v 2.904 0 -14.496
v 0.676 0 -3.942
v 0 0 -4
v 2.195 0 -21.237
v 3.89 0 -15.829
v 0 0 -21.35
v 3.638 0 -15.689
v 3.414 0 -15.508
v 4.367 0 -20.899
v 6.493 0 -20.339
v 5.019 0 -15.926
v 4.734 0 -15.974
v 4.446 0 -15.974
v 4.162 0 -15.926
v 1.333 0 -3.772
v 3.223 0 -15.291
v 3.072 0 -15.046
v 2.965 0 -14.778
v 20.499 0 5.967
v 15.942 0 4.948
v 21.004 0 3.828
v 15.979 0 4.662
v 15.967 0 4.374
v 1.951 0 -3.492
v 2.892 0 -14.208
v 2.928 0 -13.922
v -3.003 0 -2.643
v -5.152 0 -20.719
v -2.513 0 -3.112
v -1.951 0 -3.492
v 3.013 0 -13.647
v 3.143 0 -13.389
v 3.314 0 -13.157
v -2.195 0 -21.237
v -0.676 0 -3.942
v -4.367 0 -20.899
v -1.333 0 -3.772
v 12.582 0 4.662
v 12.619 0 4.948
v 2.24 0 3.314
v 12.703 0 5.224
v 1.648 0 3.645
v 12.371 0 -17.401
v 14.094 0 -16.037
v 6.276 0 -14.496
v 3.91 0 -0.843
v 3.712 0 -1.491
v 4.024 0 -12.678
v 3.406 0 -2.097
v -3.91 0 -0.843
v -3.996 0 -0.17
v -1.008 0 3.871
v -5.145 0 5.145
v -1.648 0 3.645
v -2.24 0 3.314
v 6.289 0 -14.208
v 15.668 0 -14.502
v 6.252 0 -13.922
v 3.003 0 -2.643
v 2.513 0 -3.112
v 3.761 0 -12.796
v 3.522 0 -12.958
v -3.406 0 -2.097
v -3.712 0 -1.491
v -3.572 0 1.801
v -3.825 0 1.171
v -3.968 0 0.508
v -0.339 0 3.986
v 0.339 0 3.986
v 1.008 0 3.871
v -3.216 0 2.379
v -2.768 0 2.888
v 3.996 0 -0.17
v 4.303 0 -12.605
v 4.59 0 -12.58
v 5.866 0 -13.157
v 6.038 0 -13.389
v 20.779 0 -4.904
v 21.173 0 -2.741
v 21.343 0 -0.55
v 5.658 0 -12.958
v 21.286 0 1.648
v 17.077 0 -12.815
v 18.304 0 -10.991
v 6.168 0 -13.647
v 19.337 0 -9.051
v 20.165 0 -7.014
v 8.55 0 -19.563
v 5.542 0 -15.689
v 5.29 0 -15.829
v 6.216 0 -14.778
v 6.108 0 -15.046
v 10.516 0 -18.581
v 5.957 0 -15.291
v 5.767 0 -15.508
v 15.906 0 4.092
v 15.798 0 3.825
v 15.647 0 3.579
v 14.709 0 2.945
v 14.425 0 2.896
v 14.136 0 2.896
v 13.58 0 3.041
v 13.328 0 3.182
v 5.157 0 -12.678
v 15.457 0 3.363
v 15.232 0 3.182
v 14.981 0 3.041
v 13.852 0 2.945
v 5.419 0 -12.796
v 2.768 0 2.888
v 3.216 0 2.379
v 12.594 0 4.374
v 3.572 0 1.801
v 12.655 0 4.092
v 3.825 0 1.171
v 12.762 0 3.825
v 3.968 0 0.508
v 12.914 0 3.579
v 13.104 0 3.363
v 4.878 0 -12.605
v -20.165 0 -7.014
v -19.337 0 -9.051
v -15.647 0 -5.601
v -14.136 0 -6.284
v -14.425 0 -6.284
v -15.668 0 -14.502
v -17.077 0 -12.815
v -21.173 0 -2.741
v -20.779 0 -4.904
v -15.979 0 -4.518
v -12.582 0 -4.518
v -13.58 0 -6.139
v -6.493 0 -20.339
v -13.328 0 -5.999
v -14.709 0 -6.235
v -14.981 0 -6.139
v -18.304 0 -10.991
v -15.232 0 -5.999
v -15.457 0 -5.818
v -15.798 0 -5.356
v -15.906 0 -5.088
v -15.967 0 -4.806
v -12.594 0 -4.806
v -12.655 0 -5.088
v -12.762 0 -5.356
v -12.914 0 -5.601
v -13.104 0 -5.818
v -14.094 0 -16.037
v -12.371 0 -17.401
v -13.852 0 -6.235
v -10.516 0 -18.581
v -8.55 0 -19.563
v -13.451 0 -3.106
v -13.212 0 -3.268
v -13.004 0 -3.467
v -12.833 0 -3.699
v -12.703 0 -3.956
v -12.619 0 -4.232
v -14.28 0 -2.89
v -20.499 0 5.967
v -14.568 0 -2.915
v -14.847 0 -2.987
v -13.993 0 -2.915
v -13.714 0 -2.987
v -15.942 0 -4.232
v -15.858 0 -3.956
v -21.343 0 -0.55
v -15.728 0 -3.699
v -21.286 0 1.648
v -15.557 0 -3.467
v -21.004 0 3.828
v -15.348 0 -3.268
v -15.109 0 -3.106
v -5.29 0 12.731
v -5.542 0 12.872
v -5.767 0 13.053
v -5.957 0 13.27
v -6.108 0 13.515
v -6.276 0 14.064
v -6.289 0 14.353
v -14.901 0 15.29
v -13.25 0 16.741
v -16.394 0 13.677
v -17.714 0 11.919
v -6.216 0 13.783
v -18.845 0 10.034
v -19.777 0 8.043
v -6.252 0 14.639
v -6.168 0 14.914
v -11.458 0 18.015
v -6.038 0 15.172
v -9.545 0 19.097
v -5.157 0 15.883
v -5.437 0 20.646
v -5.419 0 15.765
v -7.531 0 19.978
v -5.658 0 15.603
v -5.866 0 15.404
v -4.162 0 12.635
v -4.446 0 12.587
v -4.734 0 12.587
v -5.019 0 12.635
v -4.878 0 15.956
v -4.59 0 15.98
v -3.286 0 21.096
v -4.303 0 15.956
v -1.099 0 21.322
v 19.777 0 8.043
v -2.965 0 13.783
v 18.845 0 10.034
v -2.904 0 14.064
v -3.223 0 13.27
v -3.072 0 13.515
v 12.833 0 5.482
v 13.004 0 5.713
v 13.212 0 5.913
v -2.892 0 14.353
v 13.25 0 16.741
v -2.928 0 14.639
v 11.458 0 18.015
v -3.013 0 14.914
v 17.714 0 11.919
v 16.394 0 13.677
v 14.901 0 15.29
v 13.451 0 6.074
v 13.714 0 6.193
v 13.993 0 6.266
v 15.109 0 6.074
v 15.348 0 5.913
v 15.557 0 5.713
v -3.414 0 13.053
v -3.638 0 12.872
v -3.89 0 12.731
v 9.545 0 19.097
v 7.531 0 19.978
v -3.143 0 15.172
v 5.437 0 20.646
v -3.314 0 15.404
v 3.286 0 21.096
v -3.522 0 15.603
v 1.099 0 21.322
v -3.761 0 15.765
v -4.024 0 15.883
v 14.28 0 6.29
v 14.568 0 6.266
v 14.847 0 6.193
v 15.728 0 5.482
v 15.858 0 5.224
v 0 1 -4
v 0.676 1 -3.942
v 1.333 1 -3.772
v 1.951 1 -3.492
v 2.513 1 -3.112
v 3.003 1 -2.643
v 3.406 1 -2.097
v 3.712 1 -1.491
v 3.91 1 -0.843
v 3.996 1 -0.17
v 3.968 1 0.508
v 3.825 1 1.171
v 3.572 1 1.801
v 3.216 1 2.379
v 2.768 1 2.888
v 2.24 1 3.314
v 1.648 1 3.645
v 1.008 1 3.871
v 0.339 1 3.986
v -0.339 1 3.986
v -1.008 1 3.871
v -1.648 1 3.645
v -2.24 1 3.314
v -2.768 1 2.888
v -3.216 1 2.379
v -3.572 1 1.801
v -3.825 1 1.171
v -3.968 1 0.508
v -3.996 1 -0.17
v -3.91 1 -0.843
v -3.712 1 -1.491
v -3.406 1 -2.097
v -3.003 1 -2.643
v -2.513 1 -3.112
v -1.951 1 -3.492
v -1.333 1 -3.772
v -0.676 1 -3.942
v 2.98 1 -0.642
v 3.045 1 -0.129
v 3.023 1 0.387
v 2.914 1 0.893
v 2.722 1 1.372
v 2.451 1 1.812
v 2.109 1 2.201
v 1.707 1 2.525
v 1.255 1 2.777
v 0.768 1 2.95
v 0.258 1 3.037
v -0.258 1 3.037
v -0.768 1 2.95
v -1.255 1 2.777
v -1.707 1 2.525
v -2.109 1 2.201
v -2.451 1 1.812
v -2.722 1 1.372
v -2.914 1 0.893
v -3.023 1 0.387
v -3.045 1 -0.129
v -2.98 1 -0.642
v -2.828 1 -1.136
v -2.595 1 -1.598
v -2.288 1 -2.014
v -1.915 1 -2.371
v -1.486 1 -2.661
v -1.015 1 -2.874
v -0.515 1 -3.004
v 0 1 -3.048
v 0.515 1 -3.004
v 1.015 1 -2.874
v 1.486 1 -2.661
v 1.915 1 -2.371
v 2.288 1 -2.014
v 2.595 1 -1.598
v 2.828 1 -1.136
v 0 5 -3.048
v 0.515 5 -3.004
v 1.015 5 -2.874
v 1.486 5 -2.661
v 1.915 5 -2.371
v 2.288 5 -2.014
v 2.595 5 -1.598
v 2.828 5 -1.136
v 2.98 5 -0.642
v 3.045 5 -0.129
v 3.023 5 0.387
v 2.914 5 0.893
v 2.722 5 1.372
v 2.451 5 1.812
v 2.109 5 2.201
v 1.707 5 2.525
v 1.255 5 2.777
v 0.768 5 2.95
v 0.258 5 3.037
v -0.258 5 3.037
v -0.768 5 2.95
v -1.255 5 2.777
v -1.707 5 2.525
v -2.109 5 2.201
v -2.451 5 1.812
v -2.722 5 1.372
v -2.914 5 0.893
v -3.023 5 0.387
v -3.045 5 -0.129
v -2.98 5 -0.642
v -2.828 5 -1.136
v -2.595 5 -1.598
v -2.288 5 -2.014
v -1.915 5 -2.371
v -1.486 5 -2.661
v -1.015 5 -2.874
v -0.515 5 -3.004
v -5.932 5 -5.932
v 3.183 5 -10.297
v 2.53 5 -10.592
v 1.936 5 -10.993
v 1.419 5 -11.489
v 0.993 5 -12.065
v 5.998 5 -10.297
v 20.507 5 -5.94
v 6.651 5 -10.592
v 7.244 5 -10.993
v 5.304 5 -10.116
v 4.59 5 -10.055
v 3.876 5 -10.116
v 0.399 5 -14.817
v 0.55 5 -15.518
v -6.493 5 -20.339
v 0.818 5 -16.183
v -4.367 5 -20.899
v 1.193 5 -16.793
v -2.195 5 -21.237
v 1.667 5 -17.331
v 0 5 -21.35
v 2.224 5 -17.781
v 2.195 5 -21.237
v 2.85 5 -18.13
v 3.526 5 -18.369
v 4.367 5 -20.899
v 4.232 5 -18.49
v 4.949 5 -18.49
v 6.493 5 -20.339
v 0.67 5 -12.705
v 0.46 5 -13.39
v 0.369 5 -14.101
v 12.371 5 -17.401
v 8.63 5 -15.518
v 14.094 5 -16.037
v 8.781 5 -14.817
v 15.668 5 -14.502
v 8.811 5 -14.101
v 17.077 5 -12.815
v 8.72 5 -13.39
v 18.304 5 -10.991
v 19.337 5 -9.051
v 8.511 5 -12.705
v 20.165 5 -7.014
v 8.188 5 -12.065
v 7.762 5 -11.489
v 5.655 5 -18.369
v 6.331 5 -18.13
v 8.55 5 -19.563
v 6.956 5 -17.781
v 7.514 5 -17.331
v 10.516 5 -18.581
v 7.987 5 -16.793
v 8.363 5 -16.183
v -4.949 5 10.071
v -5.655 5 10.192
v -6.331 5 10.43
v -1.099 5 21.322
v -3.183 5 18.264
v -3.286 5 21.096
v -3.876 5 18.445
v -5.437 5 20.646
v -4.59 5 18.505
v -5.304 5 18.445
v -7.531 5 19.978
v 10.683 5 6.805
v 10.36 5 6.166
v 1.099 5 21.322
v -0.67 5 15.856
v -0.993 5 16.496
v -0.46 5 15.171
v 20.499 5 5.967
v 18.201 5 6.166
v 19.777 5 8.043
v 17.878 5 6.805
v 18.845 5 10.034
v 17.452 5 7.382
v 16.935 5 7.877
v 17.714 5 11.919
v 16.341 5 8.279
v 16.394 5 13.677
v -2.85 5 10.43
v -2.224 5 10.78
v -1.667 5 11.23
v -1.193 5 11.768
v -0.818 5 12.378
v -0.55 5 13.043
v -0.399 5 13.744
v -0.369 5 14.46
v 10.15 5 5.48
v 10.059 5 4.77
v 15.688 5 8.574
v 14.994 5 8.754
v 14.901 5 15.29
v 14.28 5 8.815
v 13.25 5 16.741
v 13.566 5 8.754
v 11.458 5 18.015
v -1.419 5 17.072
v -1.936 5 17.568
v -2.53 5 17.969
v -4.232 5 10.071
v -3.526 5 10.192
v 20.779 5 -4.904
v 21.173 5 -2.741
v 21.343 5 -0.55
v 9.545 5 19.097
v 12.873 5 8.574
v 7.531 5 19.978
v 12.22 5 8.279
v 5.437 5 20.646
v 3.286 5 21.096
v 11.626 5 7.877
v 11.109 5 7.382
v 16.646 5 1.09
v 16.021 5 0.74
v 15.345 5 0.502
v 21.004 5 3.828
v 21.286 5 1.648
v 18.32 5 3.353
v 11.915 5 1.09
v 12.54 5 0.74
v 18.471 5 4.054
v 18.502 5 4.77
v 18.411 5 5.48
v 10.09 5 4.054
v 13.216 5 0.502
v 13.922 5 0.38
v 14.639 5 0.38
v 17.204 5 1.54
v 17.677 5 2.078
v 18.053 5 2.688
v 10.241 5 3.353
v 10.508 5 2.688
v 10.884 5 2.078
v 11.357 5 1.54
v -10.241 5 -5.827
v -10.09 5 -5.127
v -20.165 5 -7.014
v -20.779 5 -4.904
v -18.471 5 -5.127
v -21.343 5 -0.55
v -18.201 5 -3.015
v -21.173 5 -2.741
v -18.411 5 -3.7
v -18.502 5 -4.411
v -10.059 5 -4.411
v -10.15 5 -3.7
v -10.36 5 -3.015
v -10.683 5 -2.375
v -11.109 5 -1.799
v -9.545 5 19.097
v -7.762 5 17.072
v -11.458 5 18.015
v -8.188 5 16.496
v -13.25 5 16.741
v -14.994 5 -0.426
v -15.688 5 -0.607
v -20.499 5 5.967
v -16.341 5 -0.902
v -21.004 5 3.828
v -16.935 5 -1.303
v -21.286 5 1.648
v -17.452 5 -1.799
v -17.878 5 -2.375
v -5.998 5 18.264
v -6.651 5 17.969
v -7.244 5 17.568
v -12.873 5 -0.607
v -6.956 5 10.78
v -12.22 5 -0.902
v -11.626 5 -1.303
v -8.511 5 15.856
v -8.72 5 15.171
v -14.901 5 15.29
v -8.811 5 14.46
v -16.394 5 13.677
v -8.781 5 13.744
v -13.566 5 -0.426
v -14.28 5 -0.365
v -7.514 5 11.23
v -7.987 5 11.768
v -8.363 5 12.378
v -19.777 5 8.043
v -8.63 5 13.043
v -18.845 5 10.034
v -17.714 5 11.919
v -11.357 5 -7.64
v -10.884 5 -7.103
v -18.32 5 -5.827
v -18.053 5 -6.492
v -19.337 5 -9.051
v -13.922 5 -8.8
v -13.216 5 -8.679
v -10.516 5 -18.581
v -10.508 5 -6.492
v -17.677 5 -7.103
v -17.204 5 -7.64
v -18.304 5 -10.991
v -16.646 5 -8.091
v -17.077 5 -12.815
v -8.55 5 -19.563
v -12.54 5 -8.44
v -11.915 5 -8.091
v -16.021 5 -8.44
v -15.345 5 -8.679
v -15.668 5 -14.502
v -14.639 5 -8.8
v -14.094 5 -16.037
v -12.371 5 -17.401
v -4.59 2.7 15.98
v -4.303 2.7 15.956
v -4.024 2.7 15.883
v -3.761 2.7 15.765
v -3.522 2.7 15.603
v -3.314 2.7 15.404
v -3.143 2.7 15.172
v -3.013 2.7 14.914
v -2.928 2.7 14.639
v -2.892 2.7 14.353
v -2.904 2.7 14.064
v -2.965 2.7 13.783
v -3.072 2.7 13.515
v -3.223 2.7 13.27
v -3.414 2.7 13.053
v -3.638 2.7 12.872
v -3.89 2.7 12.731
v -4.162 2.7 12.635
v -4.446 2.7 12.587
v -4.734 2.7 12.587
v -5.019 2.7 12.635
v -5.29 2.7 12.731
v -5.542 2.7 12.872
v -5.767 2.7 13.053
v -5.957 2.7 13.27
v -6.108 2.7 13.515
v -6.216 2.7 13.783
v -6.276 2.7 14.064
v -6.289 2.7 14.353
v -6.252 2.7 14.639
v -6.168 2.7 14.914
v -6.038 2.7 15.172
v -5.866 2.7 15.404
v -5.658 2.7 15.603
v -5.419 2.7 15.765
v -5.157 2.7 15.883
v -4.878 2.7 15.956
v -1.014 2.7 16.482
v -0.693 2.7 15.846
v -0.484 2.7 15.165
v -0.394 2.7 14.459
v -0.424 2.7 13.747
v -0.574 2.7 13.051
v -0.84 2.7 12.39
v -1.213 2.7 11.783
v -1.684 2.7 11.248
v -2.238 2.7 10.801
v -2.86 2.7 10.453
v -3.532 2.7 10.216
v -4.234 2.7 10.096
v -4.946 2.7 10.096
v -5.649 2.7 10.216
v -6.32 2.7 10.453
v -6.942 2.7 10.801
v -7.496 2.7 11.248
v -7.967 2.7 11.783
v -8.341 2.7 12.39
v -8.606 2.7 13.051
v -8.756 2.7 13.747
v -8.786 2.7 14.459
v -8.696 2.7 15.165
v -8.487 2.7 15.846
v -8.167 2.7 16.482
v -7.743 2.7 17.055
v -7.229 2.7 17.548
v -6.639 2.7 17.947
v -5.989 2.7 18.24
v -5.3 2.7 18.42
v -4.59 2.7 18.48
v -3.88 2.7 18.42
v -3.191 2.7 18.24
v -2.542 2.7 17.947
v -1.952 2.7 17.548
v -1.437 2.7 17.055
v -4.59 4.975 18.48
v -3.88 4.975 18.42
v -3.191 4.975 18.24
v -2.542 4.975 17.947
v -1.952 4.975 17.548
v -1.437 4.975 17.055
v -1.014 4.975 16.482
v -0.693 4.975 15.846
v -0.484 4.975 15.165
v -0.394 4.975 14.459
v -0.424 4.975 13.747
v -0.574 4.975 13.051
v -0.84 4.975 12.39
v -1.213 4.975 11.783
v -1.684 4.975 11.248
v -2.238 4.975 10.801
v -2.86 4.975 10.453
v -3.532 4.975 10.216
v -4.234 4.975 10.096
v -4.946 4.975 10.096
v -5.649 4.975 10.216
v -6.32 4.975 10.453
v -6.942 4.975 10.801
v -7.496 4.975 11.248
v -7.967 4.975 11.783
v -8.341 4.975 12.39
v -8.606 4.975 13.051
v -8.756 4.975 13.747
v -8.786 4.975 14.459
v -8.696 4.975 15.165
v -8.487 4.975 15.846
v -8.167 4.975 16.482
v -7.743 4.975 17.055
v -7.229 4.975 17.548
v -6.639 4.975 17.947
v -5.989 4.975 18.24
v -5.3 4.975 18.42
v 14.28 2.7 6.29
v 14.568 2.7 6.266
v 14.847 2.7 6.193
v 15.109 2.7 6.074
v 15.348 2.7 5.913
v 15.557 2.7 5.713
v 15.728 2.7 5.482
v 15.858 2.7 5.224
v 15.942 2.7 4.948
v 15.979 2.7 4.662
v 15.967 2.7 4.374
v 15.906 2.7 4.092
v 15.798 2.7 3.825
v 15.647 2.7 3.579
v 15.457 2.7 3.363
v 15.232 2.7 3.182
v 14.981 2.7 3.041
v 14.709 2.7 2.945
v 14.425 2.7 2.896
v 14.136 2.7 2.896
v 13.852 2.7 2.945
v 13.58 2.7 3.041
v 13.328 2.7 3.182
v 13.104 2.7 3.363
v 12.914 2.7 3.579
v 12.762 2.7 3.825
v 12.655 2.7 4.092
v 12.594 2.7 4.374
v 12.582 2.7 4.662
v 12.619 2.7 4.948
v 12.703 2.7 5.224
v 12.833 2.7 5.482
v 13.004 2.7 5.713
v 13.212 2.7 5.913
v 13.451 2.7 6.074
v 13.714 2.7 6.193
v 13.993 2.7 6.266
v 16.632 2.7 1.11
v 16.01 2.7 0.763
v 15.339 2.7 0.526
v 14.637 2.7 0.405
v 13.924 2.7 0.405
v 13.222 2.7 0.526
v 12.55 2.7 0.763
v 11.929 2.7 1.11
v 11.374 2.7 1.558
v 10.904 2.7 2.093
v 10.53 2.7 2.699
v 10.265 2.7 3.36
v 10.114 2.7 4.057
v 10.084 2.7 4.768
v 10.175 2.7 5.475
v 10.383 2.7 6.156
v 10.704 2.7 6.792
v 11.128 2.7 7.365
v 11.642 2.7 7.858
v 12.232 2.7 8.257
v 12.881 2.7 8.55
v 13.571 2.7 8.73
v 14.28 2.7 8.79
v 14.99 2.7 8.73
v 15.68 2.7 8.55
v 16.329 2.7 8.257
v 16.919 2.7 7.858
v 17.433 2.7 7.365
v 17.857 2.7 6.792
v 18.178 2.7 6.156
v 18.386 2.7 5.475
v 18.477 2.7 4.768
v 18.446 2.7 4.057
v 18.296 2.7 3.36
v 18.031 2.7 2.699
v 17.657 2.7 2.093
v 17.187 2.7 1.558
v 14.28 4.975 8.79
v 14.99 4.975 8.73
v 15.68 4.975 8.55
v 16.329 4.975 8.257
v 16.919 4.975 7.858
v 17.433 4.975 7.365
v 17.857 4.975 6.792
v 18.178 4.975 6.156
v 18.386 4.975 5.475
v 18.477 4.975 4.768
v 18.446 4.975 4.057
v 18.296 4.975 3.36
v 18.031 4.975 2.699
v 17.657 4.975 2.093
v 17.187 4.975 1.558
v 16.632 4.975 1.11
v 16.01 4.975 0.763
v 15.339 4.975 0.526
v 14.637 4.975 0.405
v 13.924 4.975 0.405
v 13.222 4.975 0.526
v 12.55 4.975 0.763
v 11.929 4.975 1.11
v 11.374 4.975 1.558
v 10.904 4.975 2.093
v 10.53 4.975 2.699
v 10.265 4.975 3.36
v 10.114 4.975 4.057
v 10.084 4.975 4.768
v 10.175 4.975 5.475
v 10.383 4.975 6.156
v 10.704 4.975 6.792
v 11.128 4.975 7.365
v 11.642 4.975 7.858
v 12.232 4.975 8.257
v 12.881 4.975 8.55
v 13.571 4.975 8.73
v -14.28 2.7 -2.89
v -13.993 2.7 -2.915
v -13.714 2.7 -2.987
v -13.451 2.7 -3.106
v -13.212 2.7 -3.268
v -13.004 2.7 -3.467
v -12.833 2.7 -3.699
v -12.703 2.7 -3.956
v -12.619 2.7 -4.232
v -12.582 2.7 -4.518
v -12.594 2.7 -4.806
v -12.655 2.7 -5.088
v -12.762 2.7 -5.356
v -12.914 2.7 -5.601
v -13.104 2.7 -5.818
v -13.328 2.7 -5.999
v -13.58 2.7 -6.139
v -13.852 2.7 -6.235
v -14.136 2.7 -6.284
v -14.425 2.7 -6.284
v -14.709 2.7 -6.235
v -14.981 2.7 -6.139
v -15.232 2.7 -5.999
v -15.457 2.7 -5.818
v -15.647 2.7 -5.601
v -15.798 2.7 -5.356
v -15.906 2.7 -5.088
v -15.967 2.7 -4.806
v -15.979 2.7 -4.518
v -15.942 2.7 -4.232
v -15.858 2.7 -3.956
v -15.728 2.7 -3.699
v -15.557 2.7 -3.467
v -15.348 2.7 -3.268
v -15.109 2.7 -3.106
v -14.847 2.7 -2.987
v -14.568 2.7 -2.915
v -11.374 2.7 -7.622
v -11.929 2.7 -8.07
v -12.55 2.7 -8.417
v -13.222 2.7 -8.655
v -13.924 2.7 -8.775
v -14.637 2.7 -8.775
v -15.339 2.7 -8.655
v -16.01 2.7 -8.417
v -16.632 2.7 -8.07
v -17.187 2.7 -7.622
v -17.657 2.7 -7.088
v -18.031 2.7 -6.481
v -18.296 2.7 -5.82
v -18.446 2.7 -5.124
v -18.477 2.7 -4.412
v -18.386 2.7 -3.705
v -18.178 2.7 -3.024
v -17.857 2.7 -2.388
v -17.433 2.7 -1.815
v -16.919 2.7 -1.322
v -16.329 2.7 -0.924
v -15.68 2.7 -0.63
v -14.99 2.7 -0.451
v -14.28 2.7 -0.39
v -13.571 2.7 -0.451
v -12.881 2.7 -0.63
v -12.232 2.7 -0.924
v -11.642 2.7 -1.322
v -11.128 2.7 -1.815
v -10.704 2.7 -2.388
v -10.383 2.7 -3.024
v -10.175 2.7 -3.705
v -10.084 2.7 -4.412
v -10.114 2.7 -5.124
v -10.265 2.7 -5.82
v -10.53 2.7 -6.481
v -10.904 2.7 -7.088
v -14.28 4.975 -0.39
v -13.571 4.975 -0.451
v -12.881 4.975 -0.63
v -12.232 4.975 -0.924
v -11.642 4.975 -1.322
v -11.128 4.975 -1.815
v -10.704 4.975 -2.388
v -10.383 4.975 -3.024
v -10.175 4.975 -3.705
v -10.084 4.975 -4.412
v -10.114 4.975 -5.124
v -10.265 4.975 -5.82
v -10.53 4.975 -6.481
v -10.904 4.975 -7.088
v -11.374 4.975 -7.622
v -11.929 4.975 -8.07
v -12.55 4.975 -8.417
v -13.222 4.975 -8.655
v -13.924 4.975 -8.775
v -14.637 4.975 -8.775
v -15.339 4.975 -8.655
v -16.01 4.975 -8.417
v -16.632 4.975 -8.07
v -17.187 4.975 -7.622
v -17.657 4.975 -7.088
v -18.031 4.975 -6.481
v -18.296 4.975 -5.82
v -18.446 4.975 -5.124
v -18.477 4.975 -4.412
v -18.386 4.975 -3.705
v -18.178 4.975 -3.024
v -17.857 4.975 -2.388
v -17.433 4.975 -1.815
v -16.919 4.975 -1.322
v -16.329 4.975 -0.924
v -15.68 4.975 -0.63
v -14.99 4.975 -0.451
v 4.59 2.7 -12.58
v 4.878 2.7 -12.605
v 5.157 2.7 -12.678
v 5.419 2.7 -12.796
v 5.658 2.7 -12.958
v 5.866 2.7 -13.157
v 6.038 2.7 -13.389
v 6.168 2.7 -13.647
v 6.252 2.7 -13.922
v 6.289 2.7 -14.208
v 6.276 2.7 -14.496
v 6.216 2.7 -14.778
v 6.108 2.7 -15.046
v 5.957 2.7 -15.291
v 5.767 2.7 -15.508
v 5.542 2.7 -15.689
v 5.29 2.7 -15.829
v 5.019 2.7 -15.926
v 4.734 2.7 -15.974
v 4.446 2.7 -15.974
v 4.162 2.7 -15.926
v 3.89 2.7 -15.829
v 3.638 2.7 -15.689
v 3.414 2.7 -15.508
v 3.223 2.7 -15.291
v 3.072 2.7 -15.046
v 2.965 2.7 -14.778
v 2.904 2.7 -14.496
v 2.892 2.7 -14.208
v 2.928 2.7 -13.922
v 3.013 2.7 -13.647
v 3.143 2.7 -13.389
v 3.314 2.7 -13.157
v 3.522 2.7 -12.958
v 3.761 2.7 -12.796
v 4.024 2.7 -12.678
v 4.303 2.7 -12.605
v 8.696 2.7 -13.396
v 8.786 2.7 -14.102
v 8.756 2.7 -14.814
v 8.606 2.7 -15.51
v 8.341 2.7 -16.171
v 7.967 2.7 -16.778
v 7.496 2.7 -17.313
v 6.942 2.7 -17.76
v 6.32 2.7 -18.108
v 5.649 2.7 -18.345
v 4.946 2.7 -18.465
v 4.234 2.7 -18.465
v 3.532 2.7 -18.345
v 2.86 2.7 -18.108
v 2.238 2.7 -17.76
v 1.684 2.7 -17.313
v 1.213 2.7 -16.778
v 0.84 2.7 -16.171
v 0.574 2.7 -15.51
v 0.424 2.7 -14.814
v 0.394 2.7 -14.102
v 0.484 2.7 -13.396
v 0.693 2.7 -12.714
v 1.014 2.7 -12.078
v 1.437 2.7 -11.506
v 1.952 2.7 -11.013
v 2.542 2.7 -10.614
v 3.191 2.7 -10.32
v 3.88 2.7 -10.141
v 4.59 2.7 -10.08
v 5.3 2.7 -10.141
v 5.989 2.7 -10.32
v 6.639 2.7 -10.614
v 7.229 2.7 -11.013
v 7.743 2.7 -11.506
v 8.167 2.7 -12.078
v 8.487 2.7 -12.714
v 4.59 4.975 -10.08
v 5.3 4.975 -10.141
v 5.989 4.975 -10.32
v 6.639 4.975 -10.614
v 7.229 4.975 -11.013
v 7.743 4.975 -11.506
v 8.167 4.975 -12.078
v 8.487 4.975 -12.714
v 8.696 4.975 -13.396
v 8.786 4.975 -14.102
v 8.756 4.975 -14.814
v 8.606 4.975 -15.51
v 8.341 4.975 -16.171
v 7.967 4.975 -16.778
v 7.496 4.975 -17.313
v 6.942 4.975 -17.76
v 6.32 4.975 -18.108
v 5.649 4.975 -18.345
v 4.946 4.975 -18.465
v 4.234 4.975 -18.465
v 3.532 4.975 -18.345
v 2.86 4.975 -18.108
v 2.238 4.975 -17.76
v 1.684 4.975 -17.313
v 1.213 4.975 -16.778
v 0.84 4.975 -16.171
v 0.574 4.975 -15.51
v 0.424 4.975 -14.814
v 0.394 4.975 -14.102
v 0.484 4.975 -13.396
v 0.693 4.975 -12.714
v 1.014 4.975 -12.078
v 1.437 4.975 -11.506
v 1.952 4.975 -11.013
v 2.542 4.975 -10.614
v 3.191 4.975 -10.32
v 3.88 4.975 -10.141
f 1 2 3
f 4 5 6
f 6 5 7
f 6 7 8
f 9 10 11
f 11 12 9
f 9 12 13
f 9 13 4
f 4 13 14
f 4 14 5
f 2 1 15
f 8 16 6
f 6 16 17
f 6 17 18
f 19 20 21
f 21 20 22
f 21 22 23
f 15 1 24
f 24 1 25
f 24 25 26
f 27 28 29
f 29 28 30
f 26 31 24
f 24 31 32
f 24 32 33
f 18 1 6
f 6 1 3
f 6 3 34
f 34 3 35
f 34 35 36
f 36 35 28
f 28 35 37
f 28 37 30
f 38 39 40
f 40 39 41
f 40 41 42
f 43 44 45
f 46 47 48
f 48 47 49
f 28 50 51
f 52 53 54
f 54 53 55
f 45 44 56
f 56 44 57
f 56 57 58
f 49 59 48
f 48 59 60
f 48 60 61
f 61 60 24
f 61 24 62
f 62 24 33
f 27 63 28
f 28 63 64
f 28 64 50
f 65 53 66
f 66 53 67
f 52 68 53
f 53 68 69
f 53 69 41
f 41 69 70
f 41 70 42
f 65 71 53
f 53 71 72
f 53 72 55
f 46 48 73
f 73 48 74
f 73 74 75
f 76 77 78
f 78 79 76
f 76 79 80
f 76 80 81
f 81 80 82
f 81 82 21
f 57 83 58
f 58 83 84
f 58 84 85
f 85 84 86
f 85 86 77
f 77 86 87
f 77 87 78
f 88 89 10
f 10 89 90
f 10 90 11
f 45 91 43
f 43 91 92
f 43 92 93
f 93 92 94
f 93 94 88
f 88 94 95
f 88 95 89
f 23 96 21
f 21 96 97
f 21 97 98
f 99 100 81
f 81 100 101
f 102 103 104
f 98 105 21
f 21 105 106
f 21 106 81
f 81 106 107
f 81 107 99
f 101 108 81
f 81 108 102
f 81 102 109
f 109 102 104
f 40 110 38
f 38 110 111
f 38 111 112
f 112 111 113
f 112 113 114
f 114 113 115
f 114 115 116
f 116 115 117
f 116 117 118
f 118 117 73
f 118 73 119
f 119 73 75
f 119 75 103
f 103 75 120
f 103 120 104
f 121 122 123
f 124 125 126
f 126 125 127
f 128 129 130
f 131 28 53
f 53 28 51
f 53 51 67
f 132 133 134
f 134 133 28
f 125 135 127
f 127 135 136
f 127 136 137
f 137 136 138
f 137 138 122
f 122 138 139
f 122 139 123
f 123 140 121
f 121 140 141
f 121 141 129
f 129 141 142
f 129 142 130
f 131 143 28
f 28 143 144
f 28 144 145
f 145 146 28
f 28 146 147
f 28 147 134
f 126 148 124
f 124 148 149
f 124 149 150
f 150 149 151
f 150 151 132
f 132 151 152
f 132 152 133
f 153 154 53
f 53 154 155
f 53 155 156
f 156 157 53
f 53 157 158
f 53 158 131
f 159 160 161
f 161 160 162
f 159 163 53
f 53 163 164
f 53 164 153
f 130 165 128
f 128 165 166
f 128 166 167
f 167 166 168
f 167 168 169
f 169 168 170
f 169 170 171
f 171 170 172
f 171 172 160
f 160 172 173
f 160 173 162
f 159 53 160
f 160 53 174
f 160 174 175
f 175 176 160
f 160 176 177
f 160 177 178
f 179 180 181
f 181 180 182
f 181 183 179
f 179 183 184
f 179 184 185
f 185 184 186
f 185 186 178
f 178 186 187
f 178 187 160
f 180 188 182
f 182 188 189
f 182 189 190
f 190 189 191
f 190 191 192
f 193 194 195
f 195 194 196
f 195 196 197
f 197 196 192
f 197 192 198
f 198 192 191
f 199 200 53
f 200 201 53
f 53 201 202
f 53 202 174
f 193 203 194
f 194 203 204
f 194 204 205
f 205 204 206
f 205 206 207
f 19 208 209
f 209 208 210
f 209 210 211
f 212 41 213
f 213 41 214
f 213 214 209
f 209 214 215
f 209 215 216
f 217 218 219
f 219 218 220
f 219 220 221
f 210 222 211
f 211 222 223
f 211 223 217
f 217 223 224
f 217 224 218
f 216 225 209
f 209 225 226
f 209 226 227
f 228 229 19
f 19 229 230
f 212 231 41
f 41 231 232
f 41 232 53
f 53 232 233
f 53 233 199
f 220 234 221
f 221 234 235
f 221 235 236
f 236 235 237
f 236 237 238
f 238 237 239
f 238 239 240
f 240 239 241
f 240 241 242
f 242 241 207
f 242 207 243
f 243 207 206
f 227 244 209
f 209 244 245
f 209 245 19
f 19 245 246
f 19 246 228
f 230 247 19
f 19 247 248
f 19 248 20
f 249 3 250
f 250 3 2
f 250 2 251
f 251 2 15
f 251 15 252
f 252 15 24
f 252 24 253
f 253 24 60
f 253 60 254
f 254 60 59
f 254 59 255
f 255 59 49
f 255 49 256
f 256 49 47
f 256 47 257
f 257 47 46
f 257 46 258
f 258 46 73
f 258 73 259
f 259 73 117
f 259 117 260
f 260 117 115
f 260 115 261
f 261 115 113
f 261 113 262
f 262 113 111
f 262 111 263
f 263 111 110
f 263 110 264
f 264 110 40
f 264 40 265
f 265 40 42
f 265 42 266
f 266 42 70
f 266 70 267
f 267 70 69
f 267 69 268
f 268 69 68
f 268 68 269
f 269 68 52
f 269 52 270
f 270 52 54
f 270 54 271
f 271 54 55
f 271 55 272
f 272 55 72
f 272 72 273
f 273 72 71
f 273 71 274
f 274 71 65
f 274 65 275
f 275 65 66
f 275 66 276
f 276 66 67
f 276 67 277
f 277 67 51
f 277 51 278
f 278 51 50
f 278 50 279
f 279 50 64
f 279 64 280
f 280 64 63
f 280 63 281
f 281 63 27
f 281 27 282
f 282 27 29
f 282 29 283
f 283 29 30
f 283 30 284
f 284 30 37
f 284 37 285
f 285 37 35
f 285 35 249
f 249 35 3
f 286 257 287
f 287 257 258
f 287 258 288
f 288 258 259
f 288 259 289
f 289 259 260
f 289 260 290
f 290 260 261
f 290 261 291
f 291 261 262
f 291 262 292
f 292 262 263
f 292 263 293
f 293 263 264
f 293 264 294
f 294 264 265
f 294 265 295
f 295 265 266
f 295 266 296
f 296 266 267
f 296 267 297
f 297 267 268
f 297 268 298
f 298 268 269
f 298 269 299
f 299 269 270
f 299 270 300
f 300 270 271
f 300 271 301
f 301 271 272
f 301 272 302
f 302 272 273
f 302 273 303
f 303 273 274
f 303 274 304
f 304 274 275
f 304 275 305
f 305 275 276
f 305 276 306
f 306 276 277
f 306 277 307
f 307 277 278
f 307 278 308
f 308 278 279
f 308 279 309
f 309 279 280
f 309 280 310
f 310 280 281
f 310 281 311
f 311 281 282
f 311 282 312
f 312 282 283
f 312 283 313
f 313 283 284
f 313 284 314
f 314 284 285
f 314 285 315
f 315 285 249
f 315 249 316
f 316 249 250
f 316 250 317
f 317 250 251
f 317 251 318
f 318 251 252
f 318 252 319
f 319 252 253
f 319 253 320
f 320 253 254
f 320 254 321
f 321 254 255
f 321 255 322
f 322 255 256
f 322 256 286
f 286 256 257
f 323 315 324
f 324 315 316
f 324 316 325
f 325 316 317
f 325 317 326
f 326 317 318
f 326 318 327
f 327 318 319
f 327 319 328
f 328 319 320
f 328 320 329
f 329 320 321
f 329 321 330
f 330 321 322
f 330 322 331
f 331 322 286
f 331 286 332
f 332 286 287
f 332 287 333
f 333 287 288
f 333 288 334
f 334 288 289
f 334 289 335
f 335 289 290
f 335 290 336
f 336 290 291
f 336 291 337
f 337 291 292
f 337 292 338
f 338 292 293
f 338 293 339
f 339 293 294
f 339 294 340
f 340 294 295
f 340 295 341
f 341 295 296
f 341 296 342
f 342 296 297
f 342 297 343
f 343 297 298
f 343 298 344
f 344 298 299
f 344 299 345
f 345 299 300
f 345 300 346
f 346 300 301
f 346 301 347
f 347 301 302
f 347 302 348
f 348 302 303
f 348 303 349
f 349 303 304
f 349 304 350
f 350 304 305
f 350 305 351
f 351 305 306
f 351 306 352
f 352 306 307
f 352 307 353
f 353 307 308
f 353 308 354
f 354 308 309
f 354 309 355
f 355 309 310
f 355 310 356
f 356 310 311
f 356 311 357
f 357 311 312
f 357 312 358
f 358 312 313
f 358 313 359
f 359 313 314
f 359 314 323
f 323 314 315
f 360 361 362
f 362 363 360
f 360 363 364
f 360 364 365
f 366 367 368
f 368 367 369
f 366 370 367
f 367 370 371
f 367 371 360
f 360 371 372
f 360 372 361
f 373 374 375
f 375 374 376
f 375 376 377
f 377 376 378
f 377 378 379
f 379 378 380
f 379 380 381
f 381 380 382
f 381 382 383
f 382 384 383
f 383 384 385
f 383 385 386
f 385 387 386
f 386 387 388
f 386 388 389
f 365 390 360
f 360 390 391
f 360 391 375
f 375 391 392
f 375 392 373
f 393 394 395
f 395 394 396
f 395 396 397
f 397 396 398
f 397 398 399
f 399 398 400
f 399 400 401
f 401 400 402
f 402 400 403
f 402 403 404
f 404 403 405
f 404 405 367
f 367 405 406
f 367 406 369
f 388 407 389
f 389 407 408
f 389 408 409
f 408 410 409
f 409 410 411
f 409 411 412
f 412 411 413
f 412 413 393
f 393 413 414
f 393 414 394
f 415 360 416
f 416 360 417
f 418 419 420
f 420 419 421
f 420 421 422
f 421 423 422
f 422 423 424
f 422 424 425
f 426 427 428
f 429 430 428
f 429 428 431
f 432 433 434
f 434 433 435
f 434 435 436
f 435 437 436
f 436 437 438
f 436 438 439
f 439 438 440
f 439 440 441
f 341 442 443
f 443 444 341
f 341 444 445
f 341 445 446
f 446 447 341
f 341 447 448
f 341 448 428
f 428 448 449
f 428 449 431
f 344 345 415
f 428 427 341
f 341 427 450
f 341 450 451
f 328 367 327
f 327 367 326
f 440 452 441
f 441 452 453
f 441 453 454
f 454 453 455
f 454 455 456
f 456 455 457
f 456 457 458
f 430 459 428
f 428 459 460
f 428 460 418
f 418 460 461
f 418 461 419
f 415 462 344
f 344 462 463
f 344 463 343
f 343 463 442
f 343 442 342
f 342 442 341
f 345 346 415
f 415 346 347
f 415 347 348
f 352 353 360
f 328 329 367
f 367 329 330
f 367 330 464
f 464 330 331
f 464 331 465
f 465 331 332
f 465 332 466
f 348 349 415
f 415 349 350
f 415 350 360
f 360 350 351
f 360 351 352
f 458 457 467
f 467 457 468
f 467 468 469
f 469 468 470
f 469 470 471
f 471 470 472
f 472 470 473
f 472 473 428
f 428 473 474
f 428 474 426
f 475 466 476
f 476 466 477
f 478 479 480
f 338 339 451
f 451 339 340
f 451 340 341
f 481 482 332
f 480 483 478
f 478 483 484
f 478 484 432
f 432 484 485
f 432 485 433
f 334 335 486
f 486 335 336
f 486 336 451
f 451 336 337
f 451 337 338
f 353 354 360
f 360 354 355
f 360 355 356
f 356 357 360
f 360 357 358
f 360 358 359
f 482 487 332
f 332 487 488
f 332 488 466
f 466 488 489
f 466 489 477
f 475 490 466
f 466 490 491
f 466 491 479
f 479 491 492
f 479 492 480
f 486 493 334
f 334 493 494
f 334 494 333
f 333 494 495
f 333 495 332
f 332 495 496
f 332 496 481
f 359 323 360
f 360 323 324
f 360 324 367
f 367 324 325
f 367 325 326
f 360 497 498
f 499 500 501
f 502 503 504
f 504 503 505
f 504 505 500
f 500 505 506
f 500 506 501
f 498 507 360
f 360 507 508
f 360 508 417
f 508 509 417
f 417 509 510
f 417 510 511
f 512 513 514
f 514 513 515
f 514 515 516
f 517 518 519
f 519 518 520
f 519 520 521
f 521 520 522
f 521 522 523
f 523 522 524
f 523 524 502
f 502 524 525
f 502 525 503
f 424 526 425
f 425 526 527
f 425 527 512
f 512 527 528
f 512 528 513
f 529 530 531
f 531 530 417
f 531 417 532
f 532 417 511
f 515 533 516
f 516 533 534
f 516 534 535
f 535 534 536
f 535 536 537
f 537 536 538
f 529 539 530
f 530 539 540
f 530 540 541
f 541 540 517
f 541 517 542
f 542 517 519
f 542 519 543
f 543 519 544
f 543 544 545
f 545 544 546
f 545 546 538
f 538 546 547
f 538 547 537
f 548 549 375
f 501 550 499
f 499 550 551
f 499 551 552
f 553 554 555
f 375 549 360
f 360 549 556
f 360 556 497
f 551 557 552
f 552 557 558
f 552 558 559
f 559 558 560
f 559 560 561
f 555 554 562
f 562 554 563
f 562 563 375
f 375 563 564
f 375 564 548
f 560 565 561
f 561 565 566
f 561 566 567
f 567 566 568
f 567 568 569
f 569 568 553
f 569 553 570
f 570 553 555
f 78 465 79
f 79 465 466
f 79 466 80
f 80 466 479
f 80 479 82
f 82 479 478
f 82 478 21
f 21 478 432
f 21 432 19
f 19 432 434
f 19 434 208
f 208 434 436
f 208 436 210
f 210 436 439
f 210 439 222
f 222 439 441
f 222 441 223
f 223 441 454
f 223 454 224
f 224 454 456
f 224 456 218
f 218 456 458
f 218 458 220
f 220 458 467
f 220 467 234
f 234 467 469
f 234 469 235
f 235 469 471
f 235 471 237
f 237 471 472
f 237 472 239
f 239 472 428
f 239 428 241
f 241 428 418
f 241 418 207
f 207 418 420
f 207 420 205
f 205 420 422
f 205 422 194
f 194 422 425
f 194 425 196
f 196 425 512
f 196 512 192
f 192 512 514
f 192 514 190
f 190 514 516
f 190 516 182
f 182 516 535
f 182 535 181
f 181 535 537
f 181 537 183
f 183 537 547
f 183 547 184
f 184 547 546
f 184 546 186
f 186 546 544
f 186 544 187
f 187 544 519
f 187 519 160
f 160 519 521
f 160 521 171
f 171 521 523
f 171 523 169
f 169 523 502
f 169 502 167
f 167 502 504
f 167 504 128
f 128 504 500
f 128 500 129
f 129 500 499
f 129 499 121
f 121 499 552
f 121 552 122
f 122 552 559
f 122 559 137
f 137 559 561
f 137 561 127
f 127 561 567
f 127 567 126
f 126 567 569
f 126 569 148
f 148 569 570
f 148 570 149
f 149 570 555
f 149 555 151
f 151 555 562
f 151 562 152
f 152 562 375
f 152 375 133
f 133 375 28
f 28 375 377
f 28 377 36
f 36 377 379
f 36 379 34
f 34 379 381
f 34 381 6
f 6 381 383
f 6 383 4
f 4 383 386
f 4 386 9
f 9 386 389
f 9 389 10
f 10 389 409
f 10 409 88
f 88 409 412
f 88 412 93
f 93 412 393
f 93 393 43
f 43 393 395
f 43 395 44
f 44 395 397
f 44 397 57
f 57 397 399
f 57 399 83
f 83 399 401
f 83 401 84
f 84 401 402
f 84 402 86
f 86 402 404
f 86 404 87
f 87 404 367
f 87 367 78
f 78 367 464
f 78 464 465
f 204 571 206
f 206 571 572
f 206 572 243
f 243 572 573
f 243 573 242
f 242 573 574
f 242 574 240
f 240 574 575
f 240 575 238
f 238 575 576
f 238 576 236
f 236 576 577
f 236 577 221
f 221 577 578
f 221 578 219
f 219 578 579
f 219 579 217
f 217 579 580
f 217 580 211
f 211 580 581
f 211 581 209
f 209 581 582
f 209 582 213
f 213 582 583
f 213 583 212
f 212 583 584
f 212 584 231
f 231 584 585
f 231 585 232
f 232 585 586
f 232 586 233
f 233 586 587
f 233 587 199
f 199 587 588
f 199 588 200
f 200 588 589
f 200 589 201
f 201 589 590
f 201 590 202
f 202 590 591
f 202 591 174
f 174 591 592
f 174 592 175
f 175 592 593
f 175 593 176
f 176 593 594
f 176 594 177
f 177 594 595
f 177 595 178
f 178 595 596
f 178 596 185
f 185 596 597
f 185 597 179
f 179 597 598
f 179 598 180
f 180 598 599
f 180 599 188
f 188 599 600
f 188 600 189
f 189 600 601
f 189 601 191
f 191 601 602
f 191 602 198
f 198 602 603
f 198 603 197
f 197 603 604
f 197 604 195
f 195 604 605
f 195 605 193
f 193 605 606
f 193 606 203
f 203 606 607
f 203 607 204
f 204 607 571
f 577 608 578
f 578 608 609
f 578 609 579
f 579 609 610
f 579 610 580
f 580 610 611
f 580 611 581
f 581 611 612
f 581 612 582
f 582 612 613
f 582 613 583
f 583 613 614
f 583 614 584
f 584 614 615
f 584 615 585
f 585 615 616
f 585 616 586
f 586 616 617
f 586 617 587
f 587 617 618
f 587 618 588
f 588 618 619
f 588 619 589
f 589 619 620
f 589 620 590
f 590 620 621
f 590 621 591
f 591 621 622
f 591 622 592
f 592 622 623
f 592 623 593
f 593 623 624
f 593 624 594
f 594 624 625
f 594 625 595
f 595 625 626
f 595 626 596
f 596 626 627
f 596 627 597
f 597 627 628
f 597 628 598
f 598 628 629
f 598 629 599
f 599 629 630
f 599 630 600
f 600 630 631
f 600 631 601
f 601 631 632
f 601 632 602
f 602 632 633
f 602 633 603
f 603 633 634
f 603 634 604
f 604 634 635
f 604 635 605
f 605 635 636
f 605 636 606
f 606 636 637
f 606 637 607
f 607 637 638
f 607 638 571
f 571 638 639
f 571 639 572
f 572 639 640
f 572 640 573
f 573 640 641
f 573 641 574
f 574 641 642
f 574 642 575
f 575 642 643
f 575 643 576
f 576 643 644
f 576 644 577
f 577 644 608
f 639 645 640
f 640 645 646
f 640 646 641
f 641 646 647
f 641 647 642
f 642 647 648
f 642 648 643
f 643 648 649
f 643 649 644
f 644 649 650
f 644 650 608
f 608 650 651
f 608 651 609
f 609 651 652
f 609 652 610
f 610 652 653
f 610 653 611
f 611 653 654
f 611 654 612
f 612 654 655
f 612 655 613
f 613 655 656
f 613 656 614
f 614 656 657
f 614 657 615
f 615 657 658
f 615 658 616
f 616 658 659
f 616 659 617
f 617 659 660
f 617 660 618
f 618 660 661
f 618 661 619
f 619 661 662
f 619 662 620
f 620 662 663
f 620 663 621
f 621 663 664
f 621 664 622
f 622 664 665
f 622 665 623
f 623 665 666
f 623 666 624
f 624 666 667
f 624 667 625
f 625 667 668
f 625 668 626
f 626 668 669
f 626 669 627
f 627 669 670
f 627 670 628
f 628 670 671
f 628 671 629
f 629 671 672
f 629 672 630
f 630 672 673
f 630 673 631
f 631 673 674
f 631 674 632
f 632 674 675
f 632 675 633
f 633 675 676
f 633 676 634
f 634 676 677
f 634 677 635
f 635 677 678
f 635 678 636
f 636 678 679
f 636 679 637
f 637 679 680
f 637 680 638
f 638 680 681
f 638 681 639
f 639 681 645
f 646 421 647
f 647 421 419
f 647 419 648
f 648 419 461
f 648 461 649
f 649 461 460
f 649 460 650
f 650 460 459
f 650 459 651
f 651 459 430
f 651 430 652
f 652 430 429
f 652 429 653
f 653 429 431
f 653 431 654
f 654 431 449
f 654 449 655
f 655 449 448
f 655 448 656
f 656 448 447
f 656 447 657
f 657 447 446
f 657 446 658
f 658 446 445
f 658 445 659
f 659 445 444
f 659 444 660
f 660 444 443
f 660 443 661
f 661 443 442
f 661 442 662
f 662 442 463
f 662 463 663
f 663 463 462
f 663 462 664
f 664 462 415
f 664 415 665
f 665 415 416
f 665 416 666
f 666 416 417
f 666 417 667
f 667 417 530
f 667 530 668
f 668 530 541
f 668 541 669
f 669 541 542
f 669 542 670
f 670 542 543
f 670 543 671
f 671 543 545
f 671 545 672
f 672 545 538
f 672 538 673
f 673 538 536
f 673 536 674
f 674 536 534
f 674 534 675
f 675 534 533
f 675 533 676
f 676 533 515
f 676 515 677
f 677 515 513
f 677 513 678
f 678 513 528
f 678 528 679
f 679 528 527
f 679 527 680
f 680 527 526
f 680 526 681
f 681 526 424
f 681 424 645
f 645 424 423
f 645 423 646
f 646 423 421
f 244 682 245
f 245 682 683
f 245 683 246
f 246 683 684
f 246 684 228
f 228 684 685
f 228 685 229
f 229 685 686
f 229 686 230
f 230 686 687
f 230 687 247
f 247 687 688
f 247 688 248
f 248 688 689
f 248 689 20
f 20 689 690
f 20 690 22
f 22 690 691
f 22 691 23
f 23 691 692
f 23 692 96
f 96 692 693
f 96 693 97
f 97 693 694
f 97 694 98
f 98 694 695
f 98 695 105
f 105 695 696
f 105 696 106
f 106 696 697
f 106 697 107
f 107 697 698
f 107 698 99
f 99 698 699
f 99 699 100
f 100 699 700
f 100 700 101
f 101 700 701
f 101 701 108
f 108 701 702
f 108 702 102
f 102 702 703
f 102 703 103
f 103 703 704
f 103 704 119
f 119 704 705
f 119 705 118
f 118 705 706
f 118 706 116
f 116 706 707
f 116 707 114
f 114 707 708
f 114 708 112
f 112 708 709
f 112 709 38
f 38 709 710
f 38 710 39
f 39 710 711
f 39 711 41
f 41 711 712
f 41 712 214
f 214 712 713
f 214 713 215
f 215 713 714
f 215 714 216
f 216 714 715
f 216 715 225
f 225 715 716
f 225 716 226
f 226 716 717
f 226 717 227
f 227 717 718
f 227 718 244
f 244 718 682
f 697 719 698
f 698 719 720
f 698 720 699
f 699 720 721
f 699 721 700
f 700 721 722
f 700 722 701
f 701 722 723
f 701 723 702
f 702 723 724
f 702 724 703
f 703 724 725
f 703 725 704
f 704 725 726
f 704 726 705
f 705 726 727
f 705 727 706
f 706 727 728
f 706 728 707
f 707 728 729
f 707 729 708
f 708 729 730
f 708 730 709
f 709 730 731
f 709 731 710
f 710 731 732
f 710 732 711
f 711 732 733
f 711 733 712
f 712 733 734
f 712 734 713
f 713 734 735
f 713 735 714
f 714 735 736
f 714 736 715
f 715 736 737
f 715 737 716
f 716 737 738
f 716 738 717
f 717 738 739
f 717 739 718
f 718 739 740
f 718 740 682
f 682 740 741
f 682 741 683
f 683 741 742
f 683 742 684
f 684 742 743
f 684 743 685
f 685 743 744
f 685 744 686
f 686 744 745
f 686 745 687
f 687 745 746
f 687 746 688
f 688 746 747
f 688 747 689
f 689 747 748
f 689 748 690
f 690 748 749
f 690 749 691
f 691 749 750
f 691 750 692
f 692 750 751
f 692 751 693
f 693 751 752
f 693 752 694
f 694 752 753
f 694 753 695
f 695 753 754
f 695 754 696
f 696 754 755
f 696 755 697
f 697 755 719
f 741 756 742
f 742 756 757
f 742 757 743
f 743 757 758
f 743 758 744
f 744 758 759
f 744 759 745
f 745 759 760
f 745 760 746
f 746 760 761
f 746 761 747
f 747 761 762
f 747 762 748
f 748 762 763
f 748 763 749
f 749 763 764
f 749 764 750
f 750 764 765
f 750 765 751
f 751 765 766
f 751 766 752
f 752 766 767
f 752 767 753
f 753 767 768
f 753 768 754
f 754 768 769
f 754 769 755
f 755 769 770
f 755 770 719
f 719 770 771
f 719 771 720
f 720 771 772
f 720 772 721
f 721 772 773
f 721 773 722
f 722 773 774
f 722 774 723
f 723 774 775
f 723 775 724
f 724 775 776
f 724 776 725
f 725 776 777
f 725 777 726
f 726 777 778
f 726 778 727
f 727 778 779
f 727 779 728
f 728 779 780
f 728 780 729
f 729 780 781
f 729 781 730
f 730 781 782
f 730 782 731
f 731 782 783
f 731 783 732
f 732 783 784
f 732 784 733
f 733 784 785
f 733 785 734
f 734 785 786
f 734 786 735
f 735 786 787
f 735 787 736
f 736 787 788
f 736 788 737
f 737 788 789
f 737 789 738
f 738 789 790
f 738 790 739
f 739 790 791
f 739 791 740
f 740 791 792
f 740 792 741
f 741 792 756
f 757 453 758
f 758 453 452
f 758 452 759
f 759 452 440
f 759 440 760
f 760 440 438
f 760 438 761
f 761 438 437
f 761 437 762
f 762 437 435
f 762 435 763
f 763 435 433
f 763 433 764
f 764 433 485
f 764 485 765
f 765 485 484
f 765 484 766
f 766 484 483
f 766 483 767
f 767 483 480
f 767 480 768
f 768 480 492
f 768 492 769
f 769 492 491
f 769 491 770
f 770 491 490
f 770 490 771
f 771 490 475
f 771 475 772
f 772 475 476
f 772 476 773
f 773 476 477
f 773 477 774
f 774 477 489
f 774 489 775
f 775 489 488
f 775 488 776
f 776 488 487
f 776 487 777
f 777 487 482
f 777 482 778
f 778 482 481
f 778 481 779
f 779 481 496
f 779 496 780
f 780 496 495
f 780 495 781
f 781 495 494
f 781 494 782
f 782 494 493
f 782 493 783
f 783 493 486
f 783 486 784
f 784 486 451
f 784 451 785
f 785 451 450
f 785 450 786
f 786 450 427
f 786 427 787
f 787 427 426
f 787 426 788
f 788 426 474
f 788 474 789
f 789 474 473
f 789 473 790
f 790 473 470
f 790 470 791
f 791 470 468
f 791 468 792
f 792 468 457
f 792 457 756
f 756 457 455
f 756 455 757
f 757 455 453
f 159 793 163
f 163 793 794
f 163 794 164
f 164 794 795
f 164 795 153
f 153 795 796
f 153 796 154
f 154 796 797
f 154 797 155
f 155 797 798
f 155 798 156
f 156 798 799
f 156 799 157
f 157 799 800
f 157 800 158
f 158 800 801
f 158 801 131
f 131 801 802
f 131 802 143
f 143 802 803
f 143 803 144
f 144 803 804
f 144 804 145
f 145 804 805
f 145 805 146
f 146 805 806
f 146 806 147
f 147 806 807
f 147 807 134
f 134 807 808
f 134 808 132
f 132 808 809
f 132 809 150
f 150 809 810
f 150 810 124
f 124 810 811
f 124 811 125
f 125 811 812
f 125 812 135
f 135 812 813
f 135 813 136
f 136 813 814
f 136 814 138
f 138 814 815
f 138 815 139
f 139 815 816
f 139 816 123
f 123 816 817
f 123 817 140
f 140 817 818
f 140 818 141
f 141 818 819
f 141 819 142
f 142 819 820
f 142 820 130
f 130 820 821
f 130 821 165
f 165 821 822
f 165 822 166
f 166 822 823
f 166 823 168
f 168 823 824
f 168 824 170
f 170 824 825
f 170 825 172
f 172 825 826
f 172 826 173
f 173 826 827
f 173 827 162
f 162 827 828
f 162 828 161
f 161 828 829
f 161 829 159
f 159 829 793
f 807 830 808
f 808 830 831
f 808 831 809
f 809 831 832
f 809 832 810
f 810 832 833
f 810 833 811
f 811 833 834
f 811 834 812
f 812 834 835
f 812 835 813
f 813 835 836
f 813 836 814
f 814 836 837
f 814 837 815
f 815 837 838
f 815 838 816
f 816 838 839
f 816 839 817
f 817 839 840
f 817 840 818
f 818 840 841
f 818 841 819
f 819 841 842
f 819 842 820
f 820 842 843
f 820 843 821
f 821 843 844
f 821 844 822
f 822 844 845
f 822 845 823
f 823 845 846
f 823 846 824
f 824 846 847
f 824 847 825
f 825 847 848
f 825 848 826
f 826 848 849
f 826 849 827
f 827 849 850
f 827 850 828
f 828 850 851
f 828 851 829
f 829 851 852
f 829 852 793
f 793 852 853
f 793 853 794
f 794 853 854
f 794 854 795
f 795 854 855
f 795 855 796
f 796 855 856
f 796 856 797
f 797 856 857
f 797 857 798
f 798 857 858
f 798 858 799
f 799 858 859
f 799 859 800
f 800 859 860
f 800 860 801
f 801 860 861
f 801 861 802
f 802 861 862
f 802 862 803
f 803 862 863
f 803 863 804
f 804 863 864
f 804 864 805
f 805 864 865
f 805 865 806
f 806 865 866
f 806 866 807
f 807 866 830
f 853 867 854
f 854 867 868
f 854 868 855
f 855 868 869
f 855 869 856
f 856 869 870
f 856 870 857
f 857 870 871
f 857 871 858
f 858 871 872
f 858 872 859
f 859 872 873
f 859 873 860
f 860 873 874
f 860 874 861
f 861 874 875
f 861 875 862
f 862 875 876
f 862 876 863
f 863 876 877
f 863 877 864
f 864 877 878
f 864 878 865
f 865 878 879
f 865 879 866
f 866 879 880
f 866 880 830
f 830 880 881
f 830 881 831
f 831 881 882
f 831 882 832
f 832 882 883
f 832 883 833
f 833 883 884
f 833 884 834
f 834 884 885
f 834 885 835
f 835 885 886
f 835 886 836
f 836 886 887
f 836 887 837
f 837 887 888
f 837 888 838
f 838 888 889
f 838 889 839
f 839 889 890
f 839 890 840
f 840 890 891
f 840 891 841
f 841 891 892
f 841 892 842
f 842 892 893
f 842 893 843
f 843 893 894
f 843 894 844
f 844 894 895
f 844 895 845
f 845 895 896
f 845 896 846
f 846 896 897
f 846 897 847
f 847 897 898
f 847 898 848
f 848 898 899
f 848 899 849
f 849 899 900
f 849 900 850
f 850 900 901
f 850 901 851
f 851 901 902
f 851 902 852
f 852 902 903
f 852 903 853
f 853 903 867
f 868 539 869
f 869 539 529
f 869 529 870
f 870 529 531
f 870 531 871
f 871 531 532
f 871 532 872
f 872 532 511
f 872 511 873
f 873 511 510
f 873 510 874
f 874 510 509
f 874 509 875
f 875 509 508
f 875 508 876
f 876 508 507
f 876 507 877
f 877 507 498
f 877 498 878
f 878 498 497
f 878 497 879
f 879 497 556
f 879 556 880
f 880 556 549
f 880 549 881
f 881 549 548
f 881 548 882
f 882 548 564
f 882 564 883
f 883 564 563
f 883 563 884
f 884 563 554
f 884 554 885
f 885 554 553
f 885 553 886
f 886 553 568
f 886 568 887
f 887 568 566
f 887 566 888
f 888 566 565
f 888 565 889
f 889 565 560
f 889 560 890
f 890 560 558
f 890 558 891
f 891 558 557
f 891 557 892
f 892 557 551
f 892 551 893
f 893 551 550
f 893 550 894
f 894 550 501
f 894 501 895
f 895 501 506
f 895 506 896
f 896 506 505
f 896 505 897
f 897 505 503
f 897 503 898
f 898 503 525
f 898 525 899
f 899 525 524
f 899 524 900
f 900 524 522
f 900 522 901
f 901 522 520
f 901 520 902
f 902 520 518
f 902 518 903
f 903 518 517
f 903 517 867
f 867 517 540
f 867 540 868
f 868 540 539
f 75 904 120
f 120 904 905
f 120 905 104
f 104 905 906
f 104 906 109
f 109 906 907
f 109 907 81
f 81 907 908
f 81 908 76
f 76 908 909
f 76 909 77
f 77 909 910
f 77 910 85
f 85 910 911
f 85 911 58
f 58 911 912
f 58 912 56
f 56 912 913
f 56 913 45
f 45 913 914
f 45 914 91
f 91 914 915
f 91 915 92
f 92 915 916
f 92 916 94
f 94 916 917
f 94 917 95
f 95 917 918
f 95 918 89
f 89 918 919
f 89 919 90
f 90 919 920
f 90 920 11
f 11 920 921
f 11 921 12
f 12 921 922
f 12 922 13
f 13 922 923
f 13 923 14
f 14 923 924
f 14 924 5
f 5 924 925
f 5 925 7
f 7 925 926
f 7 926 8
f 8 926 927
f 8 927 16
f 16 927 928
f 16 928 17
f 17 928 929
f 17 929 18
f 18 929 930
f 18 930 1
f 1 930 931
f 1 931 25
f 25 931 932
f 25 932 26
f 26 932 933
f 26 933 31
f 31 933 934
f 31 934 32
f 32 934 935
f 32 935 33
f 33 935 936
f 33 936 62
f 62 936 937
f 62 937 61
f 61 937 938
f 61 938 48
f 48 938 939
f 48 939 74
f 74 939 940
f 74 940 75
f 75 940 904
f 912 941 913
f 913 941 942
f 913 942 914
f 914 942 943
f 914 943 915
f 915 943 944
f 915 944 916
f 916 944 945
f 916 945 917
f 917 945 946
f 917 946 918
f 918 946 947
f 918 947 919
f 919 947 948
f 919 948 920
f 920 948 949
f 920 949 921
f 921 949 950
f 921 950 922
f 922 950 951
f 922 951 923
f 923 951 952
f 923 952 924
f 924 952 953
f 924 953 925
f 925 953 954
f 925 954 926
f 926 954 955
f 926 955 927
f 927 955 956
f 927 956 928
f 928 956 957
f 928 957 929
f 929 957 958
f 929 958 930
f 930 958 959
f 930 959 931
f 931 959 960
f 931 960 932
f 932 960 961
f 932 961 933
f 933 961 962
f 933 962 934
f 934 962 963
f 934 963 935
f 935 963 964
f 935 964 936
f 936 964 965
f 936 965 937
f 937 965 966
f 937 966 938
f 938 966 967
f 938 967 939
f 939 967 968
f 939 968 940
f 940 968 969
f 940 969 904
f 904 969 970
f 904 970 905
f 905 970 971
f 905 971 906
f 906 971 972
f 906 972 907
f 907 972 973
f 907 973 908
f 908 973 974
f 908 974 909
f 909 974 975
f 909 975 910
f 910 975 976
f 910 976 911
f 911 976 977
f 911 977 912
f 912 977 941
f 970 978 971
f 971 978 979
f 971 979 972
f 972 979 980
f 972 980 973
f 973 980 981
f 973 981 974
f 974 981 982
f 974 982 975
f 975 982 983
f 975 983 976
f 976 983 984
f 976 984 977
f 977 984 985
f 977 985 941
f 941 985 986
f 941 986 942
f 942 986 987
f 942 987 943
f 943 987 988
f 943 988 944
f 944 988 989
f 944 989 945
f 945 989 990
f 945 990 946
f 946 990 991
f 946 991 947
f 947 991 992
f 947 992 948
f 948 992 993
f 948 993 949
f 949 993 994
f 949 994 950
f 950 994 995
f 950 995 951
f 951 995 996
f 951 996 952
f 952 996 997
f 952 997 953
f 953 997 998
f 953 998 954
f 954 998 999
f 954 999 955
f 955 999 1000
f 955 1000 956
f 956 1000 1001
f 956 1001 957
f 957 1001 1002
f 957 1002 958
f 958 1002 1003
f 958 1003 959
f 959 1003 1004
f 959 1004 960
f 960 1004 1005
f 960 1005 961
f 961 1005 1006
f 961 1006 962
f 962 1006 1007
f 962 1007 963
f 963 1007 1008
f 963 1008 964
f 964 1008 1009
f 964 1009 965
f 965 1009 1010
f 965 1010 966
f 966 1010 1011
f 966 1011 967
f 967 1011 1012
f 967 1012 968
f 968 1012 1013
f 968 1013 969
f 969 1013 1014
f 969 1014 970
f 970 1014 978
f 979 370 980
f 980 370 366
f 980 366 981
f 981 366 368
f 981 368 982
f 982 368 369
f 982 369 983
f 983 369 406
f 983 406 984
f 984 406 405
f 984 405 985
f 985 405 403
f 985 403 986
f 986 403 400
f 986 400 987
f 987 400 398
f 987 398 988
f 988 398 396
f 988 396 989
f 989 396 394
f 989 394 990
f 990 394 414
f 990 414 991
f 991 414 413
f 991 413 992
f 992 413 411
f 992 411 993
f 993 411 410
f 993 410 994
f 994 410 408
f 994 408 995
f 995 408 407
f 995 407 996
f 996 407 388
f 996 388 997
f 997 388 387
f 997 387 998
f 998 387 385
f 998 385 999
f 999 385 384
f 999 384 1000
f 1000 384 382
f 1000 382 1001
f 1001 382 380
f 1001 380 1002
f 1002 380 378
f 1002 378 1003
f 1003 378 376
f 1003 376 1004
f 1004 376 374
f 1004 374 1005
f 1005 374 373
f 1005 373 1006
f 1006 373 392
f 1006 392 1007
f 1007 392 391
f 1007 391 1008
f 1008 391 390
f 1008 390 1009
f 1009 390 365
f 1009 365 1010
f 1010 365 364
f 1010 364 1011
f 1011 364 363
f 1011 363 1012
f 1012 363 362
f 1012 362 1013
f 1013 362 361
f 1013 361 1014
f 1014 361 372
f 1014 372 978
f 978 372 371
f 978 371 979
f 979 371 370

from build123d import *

# Parameters (mm, degrees)
CBORE_FOR_M3_HEX_HEAD_MACHINE_SCREW1_AT_COUNT = 2
CBORE_FOR_M3_HEX_HEAD_MACHINE_SCREW1_AT_PITCH = 21.213203436
CBORE_FOR_M3_HEX_HEAD_MACHINE_SCREW1_2_COUNT  = 2
CBORE_FOR_M3_HEX_HEAD_MACHINE_SCREW1_2_PITCH  = 21.213203436
CBORE_FOR_M3_HEX_HEAD_MACHINE_SCREW1_3_COUNT  = 2
CBORE_FOR_M3_HEX_HEAD_MACHINE_SCREW1_3_PITCH  = 30


with BuildPart() as part:
    # Sketch1 → Revolve1 (revolve)
    with BuildSketch(Plane.XY, mode=Mode.PRIVATE) as revolve1_sk:
        Polygon((21.35, 0), (21.35, 5), (3.048, 5), (3.048, 1), (4, 1), (4, 0), align=None)
    revolve(revolve1_sk.sketch.rotate(Axis((0, 0, 0), (0, 1, 0)), 90), axis=Axis((0, 0, 0), (0, 1, 0)))

    # Sketch3 → CBORE for M3 Hex Head Machine Screw1 (revolve, cut)
    with BuildSketch(Plane(origin=(4.590221075, 5, -14.280401622), x_dir=(0, 0, 1), z_dir=(1, 0, 0))):
        Polygon((0, 0), (0, 5), (1.7, 5), (1.7, 2.3), (4.2, 2.3), (4.2, 0.025), (4.225, 0), align=None)
    cbore_for_m3_hex_head_machine_screw1 = revolve(axis=Axis((4.590221075, 11.35, -14.280401622), (0, -1, 0)), mode=Mode.SUBTRACT)

    # CBORE for M3 Hex Head Machine Screw1 at: CBORE for M3 Hex Head Machine Screw1 ×2
    with Locations(*[Vector(-0.8895696849339428, 0, 0.4567994917319041) * (i * CBORE_FOR_M3_HEX_HEAD_MACHINE_SCREW1_AT_PITCH) for i in range(1, CBORE_FOR_M3_HEX_HEAD_MACHINE_SCREW1_AT_COUNT)]):
        add(cbore_for_m3_hex_head_machine_screw1, mode=Mode.SUBTRACT)

    # CBORE for M3 Hex Head Machine Screw1 2: CBORE for M3 Hex Head Machine Screw1 ×2
    with Locations(*[Vector(0.4567994917319041, 0, 0.8895696849339427) * (i * CBORE_FOR_M3_HEX_HEAD_MACHINE_SCREW1_2_PITCH) for i in range(1, CBORE_FOR_M3_HEX_HEAD_MACHINE_SCREW1_2_COUNT)]):
        add(cbore_for_m3_hex_head_machine_screw1, mode=Mode.SUBTRACT)

    # CBORE for M3 Hex Head Machine Screw1 3: CBORE for M3 Hex Head Machine Screw1 ×2
    with Locations(*[Vector(-0.3060147383085738, 0, 0.9520267748009691) * (i * CBORE_FOR_M3_HEX_HEAD_MACHINE_SCREW1_3_PITCH) for i in range(1, CBORE_FOR_M3_HEX_HEAD_MACHINE_SCREW1_3_COUNT)]):
        add(cbore_for_m3_hex_head_machine_screw1, mode=Mode.SUBTRACT)


solid = part.part
